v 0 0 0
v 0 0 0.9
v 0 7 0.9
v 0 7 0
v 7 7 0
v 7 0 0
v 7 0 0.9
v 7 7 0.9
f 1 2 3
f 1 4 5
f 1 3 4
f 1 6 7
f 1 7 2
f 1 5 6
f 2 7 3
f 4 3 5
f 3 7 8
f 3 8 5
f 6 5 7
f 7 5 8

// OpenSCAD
/* Warning, this is a very basic generator with a lot of approximation 
input data : [VQFN, VTX, 7x7x0.9mm, 48, , A, C04-00349A]
generated by com.zoubworld.electronics.cad.model3d.Basic
Date : Sun Feb 15 10:50:48 CET 2026
*/

//body
color("black")
translate([0,0,0])
cube([7.0,7.0,0.9], center=false);
